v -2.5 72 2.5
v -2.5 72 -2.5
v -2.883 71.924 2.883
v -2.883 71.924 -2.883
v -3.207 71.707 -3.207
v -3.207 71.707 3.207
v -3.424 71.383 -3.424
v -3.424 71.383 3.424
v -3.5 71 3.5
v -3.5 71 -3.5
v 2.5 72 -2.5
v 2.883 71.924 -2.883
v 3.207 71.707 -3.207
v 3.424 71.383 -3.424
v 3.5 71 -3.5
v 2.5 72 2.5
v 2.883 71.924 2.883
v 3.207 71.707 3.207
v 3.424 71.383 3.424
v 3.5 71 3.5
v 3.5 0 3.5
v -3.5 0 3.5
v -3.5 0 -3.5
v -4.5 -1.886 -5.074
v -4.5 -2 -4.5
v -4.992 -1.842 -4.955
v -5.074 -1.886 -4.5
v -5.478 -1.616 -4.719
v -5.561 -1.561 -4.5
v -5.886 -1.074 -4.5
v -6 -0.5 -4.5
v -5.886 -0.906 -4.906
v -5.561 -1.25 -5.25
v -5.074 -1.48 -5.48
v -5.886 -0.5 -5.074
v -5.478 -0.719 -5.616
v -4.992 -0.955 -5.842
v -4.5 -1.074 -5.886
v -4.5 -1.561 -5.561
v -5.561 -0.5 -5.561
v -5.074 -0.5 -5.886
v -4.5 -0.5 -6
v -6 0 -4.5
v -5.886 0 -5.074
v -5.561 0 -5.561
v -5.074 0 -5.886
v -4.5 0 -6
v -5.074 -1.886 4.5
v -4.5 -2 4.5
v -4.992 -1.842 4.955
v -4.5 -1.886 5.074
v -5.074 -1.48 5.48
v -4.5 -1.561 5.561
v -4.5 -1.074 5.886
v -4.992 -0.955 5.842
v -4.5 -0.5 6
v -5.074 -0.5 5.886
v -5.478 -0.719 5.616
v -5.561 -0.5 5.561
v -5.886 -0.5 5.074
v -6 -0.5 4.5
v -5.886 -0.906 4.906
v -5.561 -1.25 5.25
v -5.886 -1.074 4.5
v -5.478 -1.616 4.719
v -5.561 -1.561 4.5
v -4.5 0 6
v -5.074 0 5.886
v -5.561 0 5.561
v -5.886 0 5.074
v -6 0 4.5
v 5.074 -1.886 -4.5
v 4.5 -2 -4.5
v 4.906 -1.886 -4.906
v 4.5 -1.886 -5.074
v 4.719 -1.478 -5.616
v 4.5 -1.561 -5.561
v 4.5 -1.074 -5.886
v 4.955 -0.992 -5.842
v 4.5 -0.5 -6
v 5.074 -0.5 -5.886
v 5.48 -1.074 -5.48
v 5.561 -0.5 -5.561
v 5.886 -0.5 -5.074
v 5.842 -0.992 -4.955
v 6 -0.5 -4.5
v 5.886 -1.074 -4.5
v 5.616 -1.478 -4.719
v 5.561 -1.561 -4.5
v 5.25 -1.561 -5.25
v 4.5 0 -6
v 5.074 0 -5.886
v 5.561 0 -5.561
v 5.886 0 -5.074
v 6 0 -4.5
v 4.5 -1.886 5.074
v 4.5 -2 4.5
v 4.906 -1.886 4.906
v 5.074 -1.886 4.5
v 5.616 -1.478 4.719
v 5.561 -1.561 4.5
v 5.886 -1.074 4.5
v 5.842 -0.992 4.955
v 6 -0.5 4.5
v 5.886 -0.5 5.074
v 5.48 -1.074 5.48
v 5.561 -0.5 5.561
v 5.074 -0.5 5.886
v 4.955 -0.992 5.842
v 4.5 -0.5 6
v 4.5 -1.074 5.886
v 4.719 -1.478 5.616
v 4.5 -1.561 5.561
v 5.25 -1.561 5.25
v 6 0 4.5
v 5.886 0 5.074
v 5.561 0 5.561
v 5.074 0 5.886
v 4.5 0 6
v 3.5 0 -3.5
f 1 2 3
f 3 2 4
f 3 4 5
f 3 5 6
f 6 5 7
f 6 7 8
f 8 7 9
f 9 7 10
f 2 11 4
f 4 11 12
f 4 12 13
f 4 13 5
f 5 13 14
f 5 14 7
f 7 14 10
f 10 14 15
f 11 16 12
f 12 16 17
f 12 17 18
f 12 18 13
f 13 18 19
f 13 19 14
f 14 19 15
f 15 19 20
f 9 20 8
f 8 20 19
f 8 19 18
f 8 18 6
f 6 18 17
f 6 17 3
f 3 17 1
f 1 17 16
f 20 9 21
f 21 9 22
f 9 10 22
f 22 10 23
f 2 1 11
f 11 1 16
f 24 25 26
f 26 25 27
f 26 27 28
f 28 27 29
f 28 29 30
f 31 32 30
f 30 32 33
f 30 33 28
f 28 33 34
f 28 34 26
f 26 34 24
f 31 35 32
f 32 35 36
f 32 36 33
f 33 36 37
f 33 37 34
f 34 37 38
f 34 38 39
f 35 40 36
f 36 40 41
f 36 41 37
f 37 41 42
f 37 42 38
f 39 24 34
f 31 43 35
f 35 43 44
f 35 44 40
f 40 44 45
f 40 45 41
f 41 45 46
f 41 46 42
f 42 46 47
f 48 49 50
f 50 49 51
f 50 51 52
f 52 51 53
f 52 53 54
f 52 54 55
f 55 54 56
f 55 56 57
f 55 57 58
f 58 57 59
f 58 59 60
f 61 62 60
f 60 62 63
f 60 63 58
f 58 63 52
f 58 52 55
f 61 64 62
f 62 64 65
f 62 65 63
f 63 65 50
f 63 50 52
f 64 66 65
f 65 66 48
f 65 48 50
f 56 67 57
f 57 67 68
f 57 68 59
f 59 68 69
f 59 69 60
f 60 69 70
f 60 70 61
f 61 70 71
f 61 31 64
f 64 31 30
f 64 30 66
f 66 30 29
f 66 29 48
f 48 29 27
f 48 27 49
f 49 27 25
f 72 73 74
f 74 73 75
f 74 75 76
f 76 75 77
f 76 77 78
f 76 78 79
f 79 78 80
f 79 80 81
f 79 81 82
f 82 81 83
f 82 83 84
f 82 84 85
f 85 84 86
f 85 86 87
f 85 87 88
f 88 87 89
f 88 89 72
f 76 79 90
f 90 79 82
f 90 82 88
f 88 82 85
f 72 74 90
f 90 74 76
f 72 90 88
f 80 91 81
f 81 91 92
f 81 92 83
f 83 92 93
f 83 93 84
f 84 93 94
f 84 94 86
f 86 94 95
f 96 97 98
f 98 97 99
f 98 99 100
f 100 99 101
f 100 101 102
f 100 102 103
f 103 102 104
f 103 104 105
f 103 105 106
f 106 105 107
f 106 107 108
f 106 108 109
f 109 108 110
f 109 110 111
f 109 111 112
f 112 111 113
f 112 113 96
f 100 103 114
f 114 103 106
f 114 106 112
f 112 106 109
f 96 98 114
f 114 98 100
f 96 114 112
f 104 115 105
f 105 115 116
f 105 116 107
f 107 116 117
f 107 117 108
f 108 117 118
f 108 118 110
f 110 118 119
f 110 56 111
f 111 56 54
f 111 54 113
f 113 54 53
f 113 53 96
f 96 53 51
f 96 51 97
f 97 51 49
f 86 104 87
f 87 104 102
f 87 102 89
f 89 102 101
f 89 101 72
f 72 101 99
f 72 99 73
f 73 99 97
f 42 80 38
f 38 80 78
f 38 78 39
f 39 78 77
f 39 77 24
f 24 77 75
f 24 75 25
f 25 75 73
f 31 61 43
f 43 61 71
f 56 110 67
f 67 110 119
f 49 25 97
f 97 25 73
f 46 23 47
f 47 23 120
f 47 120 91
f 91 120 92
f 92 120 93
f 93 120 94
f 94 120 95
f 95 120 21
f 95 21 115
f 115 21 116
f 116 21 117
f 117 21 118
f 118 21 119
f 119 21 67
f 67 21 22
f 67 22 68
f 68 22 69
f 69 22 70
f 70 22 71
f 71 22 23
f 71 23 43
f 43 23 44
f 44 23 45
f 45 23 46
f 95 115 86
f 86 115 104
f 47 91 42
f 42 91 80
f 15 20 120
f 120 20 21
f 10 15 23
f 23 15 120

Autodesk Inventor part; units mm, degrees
ref_plane "YZ Plane" through (0, 0, 0) normal (1, 0, 0) x (0, 1, 0)
ref_plane "XZ Plane" through (0, 0, 0) normal (0, 1, 0) x (-1, 0, 0)
ref_plane "XY Plane" through (0, 0, 0) normal (0, 0, 1) x (1, 0, 0)
sketch "Szkic1" plane through (0, 0, 0) normal (0, 1, 0) x (-1, 0, 0)
  line L0 (-6, 6) -> (6, 6)
  line L1 (6, 6) -> (6, -6)
  line L2 (6, -6) -> (-6, -6)
  line L3 (-6, -6) -> (-6, 6)
  line L4 (-6, 6) -> (6, -6) construction
  line L5 (6, 6) -> (-6, -6) construction
  line L6 (-3.5, 3.5) -> (3.5, 3.5)
  line L7 (3.5, 3.5) -> (3.5, -3.5)
  line L8 (3.5, -3.5) -> (-3.5, -3.5)
  line L9 (-3.5, -3.5) -> (-3.5, 3.5)
  line L10 (-3.5, 3.5) -> (3.5, -3.5) construction
  line L11 (3.5, 3.5) -> (-3.5, -3.5) construction
  point P0 (0, 0)
  dimension "d0" = 12
  dimension "d1" = 12
  dimension "d2" = 7
  dimension "d3" = 7
extrude "Wyciągnięcie proste1" add sketch "Szkic1" along normal blind 72 contours L6 L7 L8 L9
extrude "Wyciągnięcie proste2" add sketch "Szkic1" against normal blind 2 contours L0 L1 L2 L3 | L6 L7 L8 L9
fillet "Zaokrąglenie1" radius 1.5 8 edges at (6, -1, 6) (6, -1, -6) (-6, -1, 6) (-6, -1, -6) (0, -2, -6) (6, -2, 0) (0, -2, 6) (-6, -2, 0)
fillet "Zaokrąglenie2" radius 1 4 edges at (3.5, 72, 0) (0, 72, 3.5) (0, 72, -3.5) (-3.5, 72, 0)
properties part number "kołek"
